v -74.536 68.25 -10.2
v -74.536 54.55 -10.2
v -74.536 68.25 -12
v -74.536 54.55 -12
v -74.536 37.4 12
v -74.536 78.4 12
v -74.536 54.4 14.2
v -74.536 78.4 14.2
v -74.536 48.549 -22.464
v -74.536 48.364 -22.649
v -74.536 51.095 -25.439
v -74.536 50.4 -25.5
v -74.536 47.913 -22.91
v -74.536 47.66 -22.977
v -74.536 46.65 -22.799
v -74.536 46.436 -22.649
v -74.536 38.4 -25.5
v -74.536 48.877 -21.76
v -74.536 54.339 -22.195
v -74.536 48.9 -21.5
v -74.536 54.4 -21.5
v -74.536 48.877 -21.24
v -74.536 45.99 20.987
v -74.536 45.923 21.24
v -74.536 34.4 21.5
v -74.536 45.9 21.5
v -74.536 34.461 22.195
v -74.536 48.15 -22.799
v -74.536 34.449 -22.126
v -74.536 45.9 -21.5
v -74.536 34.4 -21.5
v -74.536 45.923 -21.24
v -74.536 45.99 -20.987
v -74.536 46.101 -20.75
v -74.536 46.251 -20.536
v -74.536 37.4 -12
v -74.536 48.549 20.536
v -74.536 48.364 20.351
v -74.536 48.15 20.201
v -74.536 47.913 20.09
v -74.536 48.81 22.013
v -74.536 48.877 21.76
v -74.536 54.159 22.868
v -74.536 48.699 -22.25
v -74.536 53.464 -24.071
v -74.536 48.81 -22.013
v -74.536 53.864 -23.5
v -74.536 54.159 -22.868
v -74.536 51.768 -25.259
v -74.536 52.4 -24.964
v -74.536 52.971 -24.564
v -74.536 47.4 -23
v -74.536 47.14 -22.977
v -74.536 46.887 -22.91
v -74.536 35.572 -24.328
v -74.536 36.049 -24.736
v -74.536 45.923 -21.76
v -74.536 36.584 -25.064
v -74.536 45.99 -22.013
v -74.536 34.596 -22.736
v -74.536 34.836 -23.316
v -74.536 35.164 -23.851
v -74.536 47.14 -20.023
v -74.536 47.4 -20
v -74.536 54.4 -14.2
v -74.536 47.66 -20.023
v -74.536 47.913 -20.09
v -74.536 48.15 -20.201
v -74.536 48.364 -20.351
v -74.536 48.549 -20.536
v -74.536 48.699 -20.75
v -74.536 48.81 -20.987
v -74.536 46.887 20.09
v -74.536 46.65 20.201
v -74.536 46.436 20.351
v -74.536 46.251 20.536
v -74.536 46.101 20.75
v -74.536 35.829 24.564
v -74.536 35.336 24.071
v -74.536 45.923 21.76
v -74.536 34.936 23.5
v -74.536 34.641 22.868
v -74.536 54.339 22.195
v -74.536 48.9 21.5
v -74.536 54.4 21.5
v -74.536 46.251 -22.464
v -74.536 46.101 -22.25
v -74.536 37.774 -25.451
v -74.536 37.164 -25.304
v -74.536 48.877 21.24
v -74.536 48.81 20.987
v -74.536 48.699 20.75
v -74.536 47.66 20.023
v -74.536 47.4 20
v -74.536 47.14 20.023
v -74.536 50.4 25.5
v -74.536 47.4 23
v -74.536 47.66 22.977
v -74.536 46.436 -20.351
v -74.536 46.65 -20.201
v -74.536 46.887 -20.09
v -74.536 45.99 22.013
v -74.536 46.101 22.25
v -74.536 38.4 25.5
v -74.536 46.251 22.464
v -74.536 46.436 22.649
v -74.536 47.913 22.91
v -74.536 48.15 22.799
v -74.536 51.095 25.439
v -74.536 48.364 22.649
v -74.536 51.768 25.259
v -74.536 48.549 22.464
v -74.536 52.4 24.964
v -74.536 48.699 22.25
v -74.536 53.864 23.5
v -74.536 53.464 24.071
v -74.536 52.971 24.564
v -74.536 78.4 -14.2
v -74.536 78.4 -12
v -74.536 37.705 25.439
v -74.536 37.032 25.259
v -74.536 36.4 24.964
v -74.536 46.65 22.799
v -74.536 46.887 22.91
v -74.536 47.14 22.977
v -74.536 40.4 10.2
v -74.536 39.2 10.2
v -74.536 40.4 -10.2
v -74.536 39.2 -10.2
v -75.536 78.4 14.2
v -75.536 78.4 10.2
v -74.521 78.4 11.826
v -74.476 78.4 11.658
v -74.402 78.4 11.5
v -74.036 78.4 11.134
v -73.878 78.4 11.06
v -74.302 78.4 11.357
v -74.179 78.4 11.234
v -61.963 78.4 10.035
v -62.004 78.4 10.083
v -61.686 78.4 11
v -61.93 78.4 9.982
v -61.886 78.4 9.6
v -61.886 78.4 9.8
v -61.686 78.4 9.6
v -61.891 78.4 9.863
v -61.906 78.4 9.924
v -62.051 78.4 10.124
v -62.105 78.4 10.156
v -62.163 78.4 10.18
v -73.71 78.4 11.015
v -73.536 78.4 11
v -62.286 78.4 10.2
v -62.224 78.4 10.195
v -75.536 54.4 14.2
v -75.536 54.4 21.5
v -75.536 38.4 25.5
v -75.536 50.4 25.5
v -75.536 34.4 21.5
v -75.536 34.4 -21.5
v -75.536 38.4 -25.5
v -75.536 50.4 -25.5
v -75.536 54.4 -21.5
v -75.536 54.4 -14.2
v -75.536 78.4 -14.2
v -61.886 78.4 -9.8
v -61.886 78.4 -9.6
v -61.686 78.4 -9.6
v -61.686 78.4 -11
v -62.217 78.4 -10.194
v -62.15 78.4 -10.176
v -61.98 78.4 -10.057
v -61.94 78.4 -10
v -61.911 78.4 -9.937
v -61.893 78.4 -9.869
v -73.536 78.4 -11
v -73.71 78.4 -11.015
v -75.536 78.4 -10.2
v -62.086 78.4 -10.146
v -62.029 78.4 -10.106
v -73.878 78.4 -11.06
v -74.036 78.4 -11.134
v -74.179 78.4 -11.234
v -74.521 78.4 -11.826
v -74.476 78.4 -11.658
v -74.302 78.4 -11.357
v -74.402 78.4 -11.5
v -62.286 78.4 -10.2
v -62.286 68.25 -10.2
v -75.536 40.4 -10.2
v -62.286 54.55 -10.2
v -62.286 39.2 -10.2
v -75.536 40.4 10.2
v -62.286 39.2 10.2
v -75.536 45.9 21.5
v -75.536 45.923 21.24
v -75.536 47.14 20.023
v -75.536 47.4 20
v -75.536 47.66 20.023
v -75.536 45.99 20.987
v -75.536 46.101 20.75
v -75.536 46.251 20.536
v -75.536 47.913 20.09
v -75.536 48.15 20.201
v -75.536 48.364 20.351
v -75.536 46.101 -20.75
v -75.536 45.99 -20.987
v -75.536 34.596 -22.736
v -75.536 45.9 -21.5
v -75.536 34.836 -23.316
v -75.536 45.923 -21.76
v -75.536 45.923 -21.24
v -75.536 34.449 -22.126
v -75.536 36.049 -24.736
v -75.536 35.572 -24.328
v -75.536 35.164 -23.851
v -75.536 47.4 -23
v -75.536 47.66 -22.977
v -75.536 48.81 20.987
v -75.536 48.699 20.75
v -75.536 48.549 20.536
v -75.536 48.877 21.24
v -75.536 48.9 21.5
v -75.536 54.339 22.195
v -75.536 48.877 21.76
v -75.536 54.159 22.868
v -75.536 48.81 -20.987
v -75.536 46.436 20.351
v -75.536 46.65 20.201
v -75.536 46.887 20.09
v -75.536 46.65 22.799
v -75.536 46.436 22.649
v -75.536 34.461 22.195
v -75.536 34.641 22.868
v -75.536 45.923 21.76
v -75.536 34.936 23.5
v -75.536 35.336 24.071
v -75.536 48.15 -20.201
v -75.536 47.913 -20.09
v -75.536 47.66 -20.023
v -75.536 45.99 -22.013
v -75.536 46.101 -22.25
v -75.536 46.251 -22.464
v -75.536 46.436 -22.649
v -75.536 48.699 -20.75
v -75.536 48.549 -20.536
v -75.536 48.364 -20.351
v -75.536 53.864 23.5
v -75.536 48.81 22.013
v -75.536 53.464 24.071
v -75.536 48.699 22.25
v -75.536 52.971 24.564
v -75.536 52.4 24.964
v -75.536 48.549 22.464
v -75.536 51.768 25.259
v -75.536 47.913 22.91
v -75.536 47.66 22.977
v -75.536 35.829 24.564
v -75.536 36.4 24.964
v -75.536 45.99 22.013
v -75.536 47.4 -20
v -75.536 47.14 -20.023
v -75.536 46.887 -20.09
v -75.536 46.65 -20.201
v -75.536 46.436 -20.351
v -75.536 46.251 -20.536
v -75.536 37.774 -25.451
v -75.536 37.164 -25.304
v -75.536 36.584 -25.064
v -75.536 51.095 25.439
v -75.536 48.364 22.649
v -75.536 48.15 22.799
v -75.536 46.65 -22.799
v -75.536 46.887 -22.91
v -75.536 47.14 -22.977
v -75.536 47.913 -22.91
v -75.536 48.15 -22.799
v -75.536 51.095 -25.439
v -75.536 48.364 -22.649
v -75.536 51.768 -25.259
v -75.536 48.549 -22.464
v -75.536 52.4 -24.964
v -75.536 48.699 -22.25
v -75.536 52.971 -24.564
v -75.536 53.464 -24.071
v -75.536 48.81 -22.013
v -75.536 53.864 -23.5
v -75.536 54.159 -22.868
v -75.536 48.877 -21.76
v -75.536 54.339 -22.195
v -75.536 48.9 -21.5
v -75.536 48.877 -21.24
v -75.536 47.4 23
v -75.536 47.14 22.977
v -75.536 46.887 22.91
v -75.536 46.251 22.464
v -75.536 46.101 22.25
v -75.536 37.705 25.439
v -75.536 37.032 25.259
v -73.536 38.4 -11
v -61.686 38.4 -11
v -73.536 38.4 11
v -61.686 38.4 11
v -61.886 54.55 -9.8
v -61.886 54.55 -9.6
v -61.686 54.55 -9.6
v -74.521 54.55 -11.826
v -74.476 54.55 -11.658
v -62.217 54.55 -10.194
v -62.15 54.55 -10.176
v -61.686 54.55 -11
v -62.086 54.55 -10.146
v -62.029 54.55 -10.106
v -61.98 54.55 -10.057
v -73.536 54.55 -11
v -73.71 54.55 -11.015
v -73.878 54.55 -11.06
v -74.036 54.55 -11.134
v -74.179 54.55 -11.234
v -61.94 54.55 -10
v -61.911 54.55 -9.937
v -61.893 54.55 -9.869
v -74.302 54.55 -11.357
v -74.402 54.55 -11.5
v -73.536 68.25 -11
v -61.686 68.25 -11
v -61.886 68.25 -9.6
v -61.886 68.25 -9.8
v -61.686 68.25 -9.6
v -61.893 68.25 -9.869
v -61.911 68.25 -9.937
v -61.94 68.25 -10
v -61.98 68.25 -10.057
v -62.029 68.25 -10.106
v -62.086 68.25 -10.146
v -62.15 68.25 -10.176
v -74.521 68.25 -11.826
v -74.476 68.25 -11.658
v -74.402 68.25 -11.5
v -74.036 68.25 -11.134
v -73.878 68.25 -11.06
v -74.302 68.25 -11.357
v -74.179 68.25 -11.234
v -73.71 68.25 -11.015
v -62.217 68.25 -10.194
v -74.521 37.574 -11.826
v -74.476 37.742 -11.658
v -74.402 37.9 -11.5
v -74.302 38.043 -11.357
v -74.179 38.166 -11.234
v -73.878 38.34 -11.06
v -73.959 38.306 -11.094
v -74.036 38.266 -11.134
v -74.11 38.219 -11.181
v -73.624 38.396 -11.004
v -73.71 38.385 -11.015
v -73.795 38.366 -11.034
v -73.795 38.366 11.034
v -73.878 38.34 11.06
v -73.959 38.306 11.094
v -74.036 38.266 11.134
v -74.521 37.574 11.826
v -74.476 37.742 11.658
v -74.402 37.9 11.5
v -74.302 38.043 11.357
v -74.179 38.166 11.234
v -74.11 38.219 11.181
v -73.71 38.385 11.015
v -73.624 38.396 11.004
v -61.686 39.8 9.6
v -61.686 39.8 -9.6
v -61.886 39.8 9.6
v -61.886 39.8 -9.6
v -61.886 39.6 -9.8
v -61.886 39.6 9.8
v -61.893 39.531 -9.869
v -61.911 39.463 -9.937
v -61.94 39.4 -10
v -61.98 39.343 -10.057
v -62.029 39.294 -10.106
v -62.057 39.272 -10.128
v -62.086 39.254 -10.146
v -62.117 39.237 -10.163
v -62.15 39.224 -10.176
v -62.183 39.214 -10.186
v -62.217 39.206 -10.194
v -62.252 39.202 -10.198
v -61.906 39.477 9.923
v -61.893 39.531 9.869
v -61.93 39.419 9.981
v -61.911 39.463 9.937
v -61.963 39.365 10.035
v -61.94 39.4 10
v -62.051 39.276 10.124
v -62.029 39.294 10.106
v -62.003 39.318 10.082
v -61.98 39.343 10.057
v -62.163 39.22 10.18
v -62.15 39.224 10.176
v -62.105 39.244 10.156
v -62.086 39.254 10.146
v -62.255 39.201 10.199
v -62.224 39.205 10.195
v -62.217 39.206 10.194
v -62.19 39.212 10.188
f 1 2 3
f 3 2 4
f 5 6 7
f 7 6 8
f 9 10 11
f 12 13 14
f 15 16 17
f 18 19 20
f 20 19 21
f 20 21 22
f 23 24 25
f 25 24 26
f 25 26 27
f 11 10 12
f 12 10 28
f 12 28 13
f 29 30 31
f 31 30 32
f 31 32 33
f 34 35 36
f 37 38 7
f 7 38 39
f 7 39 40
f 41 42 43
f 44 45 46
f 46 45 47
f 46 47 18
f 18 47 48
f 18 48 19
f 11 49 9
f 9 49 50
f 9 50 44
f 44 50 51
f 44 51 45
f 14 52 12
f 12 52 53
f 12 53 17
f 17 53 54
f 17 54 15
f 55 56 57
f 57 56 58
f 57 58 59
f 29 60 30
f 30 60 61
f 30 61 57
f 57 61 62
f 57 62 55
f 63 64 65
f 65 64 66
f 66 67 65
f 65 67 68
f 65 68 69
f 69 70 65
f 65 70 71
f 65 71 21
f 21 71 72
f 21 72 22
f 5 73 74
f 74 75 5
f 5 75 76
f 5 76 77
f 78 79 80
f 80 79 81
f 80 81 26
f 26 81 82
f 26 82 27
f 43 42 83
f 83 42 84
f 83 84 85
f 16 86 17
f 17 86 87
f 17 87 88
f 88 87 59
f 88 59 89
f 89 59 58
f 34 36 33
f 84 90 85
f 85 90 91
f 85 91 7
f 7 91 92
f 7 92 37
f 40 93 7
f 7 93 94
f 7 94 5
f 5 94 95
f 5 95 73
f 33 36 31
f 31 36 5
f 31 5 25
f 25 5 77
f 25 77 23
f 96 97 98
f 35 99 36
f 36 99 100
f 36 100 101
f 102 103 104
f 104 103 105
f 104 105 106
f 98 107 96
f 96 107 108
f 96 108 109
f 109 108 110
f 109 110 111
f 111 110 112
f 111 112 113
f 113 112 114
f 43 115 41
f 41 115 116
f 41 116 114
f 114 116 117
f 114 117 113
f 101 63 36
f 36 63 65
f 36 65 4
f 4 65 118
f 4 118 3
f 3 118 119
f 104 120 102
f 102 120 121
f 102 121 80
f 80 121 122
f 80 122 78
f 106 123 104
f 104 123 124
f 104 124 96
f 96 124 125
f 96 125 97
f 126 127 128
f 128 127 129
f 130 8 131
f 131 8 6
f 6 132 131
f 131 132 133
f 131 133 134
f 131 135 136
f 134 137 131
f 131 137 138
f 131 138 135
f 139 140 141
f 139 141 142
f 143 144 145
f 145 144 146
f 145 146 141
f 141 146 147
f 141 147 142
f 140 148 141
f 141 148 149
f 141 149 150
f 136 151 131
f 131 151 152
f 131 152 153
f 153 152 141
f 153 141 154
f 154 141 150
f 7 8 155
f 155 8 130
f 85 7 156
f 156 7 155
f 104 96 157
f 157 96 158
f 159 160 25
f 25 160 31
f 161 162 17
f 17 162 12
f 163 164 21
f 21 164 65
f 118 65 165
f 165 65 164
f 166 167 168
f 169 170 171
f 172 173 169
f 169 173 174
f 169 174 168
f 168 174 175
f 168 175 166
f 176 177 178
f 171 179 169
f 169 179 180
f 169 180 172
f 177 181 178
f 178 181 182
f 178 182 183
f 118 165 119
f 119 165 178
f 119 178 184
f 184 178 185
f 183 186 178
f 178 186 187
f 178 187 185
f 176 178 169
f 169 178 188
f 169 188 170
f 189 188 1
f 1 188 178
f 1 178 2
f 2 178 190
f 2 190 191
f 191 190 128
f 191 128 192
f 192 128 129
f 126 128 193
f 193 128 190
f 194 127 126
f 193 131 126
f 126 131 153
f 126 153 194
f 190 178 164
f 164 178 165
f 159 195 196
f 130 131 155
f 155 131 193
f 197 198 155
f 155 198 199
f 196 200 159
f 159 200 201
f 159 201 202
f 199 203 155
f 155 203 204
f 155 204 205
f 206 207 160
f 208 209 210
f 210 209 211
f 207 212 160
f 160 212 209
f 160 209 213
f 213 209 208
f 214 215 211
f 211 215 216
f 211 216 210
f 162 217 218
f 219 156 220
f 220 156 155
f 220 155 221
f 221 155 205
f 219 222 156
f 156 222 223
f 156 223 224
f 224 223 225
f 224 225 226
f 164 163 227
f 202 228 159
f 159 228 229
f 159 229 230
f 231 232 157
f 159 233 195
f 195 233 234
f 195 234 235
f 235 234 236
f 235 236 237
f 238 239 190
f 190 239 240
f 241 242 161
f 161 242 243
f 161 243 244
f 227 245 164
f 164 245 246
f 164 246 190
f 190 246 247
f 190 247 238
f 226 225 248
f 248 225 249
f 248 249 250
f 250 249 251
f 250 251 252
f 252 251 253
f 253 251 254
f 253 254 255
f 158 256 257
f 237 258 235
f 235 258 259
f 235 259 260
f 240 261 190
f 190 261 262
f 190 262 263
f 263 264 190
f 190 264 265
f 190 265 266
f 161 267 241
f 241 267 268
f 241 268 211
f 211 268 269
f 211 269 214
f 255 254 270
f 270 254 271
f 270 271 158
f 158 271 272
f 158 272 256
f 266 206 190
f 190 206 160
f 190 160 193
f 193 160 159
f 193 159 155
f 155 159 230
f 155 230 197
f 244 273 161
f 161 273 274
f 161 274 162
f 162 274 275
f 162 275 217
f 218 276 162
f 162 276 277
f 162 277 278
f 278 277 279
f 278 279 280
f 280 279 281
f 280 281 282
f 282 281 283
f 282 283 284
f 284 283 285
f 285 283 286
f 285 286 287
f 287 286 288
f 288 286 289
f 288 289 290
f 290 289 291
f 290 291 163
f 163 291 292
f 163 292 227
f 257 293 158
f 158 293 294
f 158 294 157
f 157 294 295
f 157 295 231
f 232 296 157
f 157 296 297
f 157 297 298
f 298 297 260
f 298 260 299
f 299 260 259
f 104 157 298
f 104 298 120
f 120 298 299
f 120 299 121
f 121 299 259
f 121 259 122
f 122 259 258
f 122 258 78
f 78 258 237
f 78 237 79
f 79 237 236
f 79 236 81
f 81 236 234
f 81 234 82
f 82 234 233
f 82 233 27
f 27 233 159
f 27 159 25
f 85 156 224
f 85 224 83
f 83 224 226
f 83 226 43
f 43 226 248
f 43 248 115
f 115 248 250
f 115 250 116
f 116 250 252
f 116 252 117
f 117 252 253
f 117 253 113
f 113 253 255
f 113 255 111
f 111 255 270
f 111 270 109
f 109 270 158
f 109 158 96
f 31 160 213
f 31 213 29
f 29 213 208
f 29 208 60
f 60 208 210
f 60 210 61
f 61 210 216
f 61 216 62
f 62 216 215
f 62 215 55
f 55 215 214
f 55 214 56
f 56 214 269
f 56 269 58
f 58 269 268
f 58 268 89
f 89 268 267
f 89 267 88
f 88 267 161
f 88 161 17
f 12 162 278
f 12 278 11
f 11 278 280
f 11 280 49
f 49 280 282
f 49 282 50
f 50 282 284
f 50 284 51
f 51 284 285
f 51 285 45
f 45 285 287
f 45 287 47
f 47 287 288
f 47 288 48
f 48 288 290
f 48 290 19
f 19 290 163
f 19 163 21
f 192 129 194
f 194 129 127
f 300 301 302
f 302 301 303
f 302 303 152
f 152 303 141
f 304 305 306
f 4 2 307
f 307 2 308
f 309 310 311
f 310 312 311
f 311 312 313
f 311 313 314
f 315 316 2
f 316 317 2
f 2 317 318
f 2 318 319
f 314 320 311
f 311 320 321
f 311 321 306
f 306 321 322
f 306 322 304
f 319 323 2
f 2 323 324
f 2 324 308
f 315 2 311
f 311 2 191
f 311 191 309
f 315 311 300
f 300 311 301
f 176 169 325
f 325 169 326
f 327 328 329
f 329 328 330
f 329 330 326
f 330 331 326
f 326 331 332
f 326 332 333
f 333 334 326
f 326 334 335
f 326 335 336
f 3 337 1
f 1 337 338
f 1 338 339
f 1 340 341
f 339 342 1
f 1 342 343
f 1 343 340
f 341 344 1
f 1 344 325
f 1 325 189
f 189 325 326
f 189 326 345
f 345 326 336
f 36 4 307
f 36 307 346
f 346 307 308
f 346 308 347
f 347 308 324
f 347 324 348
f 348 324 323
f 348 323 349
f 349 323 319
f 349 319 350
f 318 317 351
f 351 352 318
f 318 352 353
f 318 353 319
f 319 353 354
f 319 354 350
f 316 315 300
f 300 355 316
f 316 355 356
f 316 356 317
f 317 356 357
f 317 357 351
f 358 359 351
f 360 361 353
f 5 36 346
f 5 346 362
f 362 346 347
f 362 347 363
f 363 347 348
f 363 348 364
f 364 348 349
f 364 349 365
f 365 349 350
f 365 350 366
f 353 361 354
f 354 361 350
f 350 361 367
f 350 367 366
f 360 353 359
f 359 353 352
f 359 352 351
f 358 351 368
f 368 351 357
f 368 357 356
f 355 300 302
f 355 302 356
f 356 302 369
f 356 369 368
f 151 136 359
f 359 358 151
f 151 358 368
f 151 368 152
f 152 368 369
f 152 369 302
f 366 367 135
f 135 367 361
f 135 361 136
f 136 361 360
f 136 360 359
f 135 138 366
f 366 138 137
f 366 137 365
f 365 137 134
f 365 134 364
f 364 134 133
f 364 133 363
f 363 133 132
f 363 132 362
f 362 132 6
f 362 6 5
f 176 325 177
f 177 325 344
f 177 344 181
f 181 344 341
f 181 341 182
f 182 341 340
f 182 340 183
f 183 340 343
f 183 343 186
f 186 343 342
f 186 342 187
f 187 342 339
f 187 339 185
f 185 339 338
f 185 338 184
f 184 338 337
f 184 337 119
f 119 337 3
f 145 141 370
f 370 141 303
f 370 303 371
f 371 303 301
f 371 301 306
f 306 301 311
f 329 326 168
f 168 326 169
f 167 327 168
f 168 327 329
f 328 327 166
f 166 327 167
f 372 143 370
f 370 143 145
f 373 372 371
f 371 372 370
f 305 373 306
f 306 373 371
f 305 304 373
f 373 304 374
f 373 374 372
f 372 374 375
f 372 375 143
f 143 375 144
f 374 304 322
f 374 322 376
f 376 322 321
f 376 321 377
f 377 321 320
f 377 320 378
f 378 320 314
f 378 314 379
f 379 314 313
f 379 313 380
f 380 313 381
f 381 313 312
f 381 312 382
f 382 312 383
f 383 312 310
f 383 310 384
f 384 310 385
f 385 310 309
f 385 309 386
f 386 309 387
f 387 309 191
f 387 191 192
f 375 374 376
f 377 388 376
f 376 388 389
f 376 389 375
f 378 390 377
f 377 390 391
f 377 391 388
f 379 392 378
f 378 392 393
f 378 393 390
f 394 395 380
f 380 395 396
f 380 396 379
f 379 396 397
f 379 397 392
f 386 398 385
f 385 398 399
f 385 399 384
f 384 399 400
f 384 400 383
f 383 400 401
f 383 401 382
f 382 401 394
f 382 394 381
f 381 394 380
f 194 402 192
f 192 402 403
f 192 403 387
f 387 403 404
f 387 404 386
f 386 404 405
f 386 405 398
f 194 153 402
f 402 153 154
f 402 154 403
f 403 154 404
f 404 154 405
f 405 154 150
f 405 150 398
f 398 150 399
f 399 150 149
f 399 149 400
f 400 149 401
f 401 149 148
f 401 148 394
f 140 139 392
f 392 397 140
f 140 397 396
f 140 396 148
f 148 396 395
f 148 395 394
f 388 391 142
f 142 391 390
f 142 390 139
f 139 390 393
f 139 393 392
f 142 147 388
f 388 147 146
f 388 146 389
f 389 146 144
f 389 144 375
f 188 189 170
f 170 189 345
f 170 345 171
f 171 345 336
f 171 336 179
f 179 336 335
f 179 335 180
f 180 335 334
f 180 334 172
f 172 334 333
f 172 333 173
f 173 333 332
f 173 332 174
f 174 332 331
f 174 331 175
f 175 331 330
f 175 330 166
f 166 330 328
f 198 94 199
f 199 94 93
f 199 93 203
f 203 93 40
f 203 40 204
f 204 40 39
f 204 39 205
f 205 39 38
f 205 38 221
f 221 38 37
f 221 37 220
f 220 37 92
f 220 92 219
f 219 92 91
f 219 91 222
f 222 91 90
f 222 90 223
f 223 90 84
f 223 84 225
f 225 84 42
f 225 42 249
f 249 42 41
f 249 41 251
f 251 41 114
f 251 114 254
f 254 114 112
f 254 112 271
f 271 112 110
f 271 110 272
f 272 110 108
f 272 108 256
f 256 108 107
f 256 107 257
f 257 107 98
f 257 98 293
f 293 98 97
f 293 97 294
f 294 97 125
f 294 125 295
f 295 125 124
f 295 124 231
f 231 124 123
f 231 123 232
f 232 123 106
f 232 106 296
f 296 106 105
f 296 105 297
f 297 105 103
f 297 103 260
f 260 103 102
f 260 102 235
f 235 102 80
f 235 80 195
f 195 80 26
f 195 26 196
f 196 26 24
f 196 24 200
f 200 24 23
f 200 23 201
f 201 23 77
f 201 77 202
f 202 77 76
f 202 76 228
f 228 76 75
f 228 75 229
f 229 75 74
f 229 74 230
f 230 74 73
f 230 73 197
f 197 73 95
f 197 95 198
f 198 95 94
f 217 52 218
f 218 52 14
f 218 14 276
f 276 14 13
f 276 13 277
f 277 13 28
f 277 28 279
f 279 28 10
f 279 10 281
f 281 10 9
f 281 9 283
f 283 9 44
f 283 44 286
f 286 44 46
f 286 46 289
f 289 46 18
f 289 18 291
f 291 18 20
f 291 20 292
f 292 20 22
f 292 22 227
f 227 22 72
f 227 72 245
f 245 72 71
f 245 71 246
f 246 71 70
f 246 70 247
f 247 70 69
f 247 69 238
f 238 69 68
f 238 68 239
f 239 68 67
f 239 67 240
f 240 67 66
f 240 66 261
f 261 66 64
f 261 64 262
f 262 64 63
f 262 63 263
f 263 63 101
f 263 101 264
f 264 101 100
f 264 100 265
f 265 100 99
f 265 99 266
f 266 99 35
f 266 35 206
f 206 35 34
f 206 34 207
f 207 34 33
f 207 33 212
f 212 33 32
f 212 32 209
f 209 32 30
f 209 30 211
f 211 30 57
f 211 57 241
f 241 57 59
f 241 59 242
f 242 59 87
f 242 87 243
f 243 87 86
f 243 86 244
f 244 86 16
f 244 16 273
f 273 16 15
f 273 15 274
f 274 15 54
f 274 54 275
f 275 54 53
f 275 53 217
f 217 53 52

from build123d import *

# Parameters (mm, degrees)
BOSS_EXTRUDE1_DEPTH   = 1
FILLET2_R             = 4
SKETCH2_W             = 20.4
SKETCH2_H             = 0.8
BOSS_EXTRUDE2_DEPTH   = 12.25
SKETCH3_W             = 0.8
SKETCH3_H             = 40
BOSS_EXTRUDE3_DEPTH   = 12.25
SKETCH5_W             = 0.8
SKETCH5_H             = 16.15
SKETCH5_H_2           = 10.15
BOSS_EXTRUDE4_DEPTH   = 12.25
FILLET3_R             = 1
SKETCH6_W             = 0.8
SKETCH6_H             = 10.15
BOSS_EXTRUDE5_DEPTH   = 0.6
SKETCH7_W             = 0.6
SKETCH7_H             = 10.15
EXTRUDE_THIN1_DEPTH   = 0.2
FILLET4_R             = 0.4
F_3_0MM_DOWEL_HOLE2_D = 3


with BuildPart() as part:
    # Sketch1 → Boss-Extrude1 (new body)
    with BuildSketch(Plane(origin=(-75.536427928, 0, 0), x_dir=(0, 0, -1), z_dir=(1, 0, 0))):
        Polygon((-25.5, 40.4), (-25.5, 54.4), (-14.2, 54.4), (-14.2, 78.4), (-10.2, 78.4), (-10.2, 54.4), (-10.2, 40.4), (10.2, 40.4), (10.2, 54.4), (10.2, 78.4), (14.2, 78.4), (14.2, 54.4), (25.5, 54.4), (25.5, 40.4), (25.5, 34.4), (-25.5, 34.4), align=None)
    extrude(amount=BOSS_EXTRUDE1_DEPTH)

    # Fillet2
    fillet2_edges = [part.edges().sort_by_distance(p)[0] for p in [
        (-75.036427928, 54.4, -25.5),
        (-75.036427928, 34.4, -25.5),
        (-75.036427928, 34.4, 25.5),
        (-75.036427928, 54.4, 25.5),
    ]]
    fillet(fillet2_edges, radius=FILLET2_R)

    # Sketch2 → Boss-Extrude2 (add)
    with BuildSketch(Plane(origin=(-74.536427928, 0, 0), x_dir=(0, 0, -1), z_dir=(1, 0, 0))):
        with Locations((0, 38.8)):
            Rectangle(SKETCH2_W, SKETCH2_H)
    extrude(amount=BOSS_EXTRUDE2_DEPTH)

    # Sketch3 → Boss-Extrude3 (add)
    with BuildSketch(Plane(origin=(-74.536427928, 0, 0), x_dir=(0, 0, -1), z_dir=(1, 0, 0))):
        with Locations((-10.6, 58.4)):
            Rectangle(SKETCH3_W, SKETCH3_H)
    extrude(amount=BOSS_EXTRUDE3_DEPTH)

    # Sketch5 → Boss-Extrude4 (add)
    with BuildSketch(Plane(origin=(-74.536427928, 0, 0), x_dir=(0, 0, -1), z_dir=(1, 0, 0))):
        with Locations((10.6, 46.475)):
            Rectangle(SKETCH5_W, SKETCH5_H)
        with Locations((10.6, 73.325)):
            Rectangle(SKETCH5_W, SKETCH5_H_2)
    extrude(amount=BOSS_EXTRUDE4_DEPTH)

    # Fillet3
    fillet3_edges = [part.edges().sort_by_distance(p)[0] for p in [
        (-74.536427928, 46.475, -11),
        (-74.536427928, 73.325, -11),
        (-74.536427928, 38.4, 0),
        (-74.536427928, 58.4, 11),
    ]]
    fillet(fillet3_edges, radius=FILLET3_R)

    # Sketch6 → Boss-Extrude5 (add)
    with BuildSketch(Plane(origin=(-62.286427928, 0, 0), x_dir=(0, 0, -1), z_dir=(1, 0, 0))):
        Polygon((-11, 38.4), (11, 38.4), (11, 54.55), (10.2, 54.55), (10.2, 39.2), (-10.2, 39.2), (-10.2, 78.4), (-11, 78.4), align=None)
        with Locations((10.6, 73.325)):
            Rectangle(SKETCH6_W, SKETCH6_H)
    extrude(amount=BOSS_EXTRUDE5_DEPTH)

    # Sketch7 → Extrude-Thin1 (add)
    with BuildSketch(Plane(origin=(-61.686427928, 0, 0), x_dir=(0, 0, -1), z_dir=(1, 0, 0))):
        with Locations((9.9, 73.325)):
            Rectangle(SKETCH7_W, SKETCH7_H)
        Polygon((10.2, 54.55), (10.2, 39.2), (-10.2, 39.2), (-10.2, 78.4), (-9.6, 78.4), (-9.6, 39.8), (9.6, 39.8), (9.6, 54.55), align=None)
    extrude(amount=-EXTRUDE_THIN1_DEPTH)

    # Fillet4
    fillet4_edges = [part.edges().sort_by_distance(p)[0] for p in [
        (-61.886427928, 73.325, -10.2),
        (-61.886427928, 46.875, -10.2),
        (-61.886427928, 39.2, 0),
        (-61.886427928, 58.8, 10.2),
    ]]
    fillet(fillet4_edges, radius=FILLET4_R)

    # Ø3.0mm Dowel Hole2 (through all)
    with Locations(Plane(origin=(-74.536427928, 0, 0), x_dir=(0, 0, -1), z_dir=(1, 0, 0))):
        with Locations((21.5, 47.4), (-21.5, 47.4)):
            Hole(F_3_0MM_DOWEL_HOLE2_D / 2)


solid = part.part
